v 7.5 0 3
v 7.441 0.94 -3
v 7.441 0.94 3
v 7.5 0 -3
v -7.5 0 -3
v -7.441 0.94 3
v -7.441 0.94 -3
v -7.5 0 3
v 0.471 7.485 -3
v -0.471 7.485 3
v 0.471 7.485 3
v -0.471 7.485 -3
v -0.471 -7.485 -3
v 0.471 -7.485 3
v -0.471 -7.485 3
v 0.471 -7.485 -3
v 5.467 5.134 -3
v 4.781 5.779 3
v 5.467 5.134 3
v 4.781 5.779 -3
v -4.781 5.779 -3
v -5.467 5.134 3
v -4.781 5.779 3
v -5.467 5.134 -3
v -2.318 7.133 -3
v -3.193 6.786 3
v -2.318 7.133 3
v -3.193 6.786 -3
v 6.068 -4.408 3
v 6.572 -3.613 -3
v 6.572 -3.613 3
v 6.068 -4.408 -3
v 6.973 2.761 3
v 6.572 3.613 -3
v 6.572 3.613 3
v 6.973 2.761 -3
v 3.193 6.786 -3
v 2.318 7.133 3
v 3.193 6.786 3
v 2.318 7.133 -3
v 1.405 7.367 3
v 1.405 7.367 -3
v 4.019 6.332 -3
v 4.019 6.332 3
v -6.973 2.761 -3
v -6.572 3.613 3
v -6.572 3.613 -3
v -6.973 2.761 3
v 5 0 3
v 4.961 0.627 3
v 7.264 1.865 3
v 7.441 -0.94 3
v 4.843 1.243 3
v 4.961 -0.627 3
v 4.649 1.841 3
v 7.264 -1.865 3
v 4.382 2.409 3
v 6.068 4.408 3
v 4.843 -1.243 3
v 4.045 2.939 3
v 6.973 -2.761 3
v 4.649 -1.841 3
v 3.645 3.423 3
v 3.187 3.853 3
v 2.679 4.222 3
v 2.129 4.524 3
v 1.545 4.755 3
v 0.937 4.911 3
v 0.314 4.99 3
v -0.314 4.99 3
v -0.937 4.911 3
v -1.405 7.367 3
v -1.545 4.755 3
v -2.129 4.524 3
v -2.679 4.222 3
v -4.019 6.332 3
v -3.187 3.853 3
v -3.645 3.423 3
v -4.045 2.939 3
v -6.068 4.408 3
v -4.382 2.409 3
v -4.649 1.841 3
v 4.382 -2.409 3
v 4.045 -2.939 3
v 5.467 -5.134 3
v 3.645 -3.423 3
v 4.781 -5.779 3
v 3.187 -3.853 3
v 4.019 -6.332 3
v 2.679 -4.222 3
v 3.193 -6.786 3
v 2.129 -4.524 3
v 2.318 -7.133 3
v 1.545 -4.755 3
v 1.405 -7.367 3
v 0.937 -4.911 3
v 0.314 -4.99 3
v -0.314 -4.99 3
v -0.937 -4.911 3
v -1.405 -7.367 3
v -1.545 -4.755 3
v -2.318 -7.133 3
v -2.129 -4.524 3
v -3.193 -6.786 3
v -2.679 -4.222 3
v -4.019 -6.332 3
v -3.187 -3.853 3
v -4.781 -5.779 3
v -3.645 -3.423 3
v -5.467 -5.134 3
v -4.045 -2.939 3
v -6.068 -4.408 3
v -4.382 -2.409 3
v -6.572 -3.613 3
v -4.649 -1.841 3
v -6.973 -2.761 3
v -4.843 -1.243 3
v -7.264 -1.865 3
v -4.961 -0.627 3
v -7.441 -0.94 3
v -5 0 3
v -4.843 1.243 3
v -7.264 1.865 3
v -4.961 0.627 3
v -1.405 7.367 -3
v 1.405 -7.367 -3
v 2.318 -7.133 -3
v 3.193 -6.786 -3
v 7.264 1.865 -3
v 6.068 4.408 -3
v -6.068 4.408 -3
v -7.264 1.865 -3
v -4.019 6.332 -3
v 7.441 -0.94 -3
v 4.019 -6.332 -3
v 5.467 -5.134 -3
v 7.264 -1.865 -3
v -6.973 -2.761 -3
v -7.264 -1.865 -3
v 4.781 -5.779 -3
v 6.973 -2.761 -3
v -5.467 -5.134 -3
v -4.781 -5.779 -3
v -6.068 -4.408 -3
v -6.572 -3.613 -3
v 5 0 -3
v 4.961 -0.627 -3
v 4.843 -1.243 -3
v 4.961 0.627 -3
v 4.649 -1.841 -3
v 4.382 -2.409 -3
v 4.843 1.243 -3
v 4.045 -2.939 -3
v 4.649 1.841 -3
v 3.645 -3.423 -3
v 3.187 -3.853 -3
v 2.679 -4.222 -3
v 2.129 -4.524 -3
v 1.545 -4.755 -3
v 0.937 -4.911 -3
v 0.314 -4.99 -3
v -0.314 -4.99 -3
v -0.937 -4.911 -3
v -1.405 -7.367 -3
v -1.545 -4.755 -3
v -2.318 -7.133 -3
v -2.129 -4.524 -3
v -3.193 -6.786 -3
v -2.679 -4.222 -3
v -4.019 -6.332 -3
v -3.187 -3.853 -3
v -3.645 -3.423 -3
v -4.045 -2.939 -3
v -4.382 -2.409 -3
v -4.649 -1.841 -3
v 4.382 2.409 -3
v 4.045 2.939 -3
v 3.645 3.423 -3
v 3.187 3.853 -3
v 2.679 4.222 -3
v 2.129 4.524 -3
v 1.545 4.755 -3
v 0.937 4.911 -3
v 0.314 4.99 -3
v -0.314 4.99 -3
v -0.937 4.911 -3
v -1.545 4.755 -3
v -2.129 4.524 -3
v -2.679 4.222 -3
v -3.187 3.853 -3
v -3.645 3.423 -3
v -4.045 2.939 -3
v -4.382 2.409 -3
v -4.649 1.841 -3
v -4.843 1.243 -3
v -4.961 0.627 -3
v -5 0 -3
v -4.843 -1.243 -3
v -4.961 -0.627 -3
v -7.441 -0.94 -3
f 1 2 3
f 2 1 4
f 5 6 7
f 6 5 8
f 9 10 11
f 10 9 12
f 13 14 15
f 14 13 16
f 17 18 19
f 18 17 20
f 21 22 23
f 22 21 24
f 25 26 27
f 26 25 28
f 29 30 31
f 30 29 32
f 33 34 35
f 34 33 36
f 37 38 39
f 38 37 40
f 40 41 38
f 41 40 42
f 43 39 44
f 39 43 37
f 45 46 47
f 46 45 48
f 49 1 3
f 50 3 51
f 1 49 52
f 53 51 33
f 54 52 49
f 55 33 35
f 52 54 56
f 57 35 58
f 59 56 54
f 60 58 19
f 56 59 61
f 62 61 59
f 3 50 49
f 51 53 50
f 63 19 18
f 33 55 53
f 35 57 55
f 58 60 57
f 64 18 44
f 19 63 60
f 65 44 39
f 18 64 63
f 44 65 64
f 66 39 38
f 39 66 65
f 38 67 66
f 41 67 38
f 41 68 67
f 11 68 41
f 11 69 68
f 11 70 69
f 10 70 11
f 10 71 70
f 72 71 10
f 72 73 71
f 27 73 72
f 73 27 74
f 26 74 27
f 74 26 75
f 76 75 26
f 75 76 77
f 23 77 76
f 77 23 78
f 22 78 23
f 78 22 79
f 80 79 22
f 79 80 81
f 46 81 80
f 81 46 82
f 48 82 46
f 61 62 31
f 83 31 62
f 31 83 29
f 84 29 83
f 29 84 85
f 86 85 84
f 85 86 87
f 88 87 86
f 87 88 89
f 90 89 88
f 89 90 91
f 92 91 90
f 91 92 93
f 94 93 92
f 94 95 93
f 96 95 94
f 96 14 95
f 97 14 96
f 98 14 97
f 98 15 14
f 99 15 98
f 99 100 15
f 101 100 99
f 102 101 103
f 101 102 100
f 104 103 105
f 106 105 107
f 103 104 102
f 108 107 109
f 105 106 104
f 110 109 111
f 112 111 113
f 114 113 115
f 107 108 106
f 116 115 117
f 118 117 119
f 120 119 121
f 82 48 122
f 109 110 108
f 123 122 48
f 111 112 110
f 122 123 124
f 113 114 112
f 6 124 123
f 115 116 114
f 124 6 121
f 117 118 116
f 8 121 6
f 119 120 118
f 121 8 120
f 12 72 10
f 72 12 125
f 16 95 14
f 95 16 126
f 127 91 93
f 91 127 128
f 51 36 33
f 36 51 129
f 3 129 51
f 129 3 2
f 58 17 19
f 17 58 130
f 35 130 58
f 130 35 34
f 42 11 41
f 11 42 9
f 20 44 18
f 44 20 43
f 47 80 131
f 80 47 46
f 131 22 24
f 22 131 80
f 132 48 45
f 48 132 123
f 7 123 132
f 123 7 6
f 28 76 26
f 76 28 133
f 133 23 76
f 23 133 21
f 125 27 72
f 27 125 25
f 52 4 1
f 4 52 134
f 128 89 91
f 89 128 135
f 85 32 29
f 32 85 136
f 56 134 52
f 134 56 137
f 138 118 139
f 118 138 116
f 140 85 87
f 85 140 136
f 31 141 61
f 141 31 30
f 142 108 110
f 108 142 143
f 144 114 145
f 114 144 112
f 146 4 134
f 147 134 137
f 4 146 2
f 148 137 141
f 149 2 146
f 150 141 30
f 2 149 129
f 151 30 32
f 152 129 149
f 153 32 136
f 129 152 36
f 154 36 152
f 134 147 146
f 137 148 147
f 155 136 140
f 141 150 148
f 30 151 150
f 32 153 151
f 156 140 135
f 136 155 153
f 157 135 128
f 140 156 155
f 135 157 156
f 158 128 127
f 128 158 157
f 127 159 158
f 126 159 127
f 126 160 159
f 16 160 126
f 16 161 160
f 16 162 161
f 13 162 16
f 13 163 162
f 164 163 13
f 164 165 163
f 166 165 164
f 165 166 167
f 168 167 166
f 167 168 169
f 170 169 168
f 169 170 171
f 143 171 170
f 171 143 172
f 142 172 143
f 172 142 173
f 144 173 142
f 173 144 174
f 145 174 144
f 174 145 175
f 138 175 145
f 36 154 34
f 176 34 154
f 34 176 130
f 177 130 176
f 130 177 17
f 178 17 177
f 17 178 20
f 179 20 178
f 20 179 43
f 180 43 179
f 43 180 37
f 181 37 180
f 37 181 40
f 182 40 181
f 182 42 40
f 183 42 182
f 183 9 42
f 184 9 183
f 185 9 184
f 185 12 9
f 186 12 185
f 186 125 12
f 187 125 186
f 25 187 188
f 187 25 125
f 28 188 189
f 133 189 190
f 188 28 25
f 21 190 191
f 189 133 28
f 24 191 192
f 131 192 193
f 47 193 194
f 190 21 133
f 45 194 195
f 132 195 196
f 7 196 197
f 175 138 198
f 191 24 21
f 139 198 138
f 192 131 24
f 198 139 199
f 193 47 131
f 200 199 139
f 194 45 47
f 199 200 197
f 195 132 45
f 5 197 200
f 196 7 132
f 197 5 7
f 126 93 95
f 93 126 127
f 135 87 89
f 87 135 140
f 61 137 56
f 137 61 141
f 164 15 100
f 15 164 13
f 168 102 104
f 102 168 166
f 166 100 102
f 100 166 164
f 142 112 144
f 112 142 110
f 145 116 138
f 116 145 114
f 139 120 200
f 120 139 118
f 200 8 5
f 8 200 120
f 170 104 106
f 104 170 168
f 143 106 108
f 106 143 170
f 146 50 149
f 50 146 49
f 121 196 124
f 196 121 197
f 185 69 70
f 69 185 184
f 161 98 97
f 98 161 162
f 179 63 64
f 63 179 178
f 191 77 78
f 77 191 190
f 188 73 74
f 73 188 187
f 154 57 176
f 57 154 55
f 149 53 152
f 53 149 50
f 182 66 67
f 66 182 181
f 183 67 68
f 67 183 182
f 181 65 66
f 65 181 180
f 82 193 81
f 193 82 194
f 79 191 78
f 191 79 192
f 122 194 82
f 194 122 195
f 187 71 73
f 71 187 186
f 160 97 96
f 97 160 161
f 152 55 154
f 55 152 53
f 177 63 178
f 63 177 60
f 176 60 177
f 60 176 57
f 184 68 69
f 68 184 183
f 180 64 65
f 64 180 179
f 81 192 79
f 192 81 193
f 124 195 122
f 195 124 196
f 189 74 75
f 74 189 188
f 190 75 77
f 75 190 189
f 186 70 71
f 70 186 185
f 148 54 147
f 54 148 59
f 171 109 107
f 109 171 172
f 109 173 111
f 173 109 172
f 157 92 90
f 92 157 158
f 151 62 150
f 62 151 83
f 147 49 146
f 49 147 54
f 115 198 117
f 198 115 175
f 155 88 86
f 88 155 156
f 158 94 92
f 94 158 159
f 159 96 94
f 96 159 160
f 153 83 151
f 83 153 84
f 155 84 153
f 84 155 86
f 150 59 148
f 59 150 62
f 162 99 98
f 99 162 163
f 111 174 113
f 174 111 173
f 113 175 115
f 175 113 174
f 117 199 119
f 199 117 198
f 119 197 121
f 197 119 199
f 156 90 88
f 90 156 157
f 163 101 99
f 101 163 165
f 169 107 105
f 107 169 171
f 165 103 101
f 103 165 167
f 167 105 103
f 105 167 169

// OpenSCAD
$fn = 50;


difference() {
	union() {
		translate(v = [0, 0, -3.0000000000]) {
			cylinder(h = 6, r = 7.5000000000);
		}
	}
	union() {
		translate(v = [0, 0, -100.0000000000]) {
			cylinder(h = 200, r = 5);
		}
	}
}
